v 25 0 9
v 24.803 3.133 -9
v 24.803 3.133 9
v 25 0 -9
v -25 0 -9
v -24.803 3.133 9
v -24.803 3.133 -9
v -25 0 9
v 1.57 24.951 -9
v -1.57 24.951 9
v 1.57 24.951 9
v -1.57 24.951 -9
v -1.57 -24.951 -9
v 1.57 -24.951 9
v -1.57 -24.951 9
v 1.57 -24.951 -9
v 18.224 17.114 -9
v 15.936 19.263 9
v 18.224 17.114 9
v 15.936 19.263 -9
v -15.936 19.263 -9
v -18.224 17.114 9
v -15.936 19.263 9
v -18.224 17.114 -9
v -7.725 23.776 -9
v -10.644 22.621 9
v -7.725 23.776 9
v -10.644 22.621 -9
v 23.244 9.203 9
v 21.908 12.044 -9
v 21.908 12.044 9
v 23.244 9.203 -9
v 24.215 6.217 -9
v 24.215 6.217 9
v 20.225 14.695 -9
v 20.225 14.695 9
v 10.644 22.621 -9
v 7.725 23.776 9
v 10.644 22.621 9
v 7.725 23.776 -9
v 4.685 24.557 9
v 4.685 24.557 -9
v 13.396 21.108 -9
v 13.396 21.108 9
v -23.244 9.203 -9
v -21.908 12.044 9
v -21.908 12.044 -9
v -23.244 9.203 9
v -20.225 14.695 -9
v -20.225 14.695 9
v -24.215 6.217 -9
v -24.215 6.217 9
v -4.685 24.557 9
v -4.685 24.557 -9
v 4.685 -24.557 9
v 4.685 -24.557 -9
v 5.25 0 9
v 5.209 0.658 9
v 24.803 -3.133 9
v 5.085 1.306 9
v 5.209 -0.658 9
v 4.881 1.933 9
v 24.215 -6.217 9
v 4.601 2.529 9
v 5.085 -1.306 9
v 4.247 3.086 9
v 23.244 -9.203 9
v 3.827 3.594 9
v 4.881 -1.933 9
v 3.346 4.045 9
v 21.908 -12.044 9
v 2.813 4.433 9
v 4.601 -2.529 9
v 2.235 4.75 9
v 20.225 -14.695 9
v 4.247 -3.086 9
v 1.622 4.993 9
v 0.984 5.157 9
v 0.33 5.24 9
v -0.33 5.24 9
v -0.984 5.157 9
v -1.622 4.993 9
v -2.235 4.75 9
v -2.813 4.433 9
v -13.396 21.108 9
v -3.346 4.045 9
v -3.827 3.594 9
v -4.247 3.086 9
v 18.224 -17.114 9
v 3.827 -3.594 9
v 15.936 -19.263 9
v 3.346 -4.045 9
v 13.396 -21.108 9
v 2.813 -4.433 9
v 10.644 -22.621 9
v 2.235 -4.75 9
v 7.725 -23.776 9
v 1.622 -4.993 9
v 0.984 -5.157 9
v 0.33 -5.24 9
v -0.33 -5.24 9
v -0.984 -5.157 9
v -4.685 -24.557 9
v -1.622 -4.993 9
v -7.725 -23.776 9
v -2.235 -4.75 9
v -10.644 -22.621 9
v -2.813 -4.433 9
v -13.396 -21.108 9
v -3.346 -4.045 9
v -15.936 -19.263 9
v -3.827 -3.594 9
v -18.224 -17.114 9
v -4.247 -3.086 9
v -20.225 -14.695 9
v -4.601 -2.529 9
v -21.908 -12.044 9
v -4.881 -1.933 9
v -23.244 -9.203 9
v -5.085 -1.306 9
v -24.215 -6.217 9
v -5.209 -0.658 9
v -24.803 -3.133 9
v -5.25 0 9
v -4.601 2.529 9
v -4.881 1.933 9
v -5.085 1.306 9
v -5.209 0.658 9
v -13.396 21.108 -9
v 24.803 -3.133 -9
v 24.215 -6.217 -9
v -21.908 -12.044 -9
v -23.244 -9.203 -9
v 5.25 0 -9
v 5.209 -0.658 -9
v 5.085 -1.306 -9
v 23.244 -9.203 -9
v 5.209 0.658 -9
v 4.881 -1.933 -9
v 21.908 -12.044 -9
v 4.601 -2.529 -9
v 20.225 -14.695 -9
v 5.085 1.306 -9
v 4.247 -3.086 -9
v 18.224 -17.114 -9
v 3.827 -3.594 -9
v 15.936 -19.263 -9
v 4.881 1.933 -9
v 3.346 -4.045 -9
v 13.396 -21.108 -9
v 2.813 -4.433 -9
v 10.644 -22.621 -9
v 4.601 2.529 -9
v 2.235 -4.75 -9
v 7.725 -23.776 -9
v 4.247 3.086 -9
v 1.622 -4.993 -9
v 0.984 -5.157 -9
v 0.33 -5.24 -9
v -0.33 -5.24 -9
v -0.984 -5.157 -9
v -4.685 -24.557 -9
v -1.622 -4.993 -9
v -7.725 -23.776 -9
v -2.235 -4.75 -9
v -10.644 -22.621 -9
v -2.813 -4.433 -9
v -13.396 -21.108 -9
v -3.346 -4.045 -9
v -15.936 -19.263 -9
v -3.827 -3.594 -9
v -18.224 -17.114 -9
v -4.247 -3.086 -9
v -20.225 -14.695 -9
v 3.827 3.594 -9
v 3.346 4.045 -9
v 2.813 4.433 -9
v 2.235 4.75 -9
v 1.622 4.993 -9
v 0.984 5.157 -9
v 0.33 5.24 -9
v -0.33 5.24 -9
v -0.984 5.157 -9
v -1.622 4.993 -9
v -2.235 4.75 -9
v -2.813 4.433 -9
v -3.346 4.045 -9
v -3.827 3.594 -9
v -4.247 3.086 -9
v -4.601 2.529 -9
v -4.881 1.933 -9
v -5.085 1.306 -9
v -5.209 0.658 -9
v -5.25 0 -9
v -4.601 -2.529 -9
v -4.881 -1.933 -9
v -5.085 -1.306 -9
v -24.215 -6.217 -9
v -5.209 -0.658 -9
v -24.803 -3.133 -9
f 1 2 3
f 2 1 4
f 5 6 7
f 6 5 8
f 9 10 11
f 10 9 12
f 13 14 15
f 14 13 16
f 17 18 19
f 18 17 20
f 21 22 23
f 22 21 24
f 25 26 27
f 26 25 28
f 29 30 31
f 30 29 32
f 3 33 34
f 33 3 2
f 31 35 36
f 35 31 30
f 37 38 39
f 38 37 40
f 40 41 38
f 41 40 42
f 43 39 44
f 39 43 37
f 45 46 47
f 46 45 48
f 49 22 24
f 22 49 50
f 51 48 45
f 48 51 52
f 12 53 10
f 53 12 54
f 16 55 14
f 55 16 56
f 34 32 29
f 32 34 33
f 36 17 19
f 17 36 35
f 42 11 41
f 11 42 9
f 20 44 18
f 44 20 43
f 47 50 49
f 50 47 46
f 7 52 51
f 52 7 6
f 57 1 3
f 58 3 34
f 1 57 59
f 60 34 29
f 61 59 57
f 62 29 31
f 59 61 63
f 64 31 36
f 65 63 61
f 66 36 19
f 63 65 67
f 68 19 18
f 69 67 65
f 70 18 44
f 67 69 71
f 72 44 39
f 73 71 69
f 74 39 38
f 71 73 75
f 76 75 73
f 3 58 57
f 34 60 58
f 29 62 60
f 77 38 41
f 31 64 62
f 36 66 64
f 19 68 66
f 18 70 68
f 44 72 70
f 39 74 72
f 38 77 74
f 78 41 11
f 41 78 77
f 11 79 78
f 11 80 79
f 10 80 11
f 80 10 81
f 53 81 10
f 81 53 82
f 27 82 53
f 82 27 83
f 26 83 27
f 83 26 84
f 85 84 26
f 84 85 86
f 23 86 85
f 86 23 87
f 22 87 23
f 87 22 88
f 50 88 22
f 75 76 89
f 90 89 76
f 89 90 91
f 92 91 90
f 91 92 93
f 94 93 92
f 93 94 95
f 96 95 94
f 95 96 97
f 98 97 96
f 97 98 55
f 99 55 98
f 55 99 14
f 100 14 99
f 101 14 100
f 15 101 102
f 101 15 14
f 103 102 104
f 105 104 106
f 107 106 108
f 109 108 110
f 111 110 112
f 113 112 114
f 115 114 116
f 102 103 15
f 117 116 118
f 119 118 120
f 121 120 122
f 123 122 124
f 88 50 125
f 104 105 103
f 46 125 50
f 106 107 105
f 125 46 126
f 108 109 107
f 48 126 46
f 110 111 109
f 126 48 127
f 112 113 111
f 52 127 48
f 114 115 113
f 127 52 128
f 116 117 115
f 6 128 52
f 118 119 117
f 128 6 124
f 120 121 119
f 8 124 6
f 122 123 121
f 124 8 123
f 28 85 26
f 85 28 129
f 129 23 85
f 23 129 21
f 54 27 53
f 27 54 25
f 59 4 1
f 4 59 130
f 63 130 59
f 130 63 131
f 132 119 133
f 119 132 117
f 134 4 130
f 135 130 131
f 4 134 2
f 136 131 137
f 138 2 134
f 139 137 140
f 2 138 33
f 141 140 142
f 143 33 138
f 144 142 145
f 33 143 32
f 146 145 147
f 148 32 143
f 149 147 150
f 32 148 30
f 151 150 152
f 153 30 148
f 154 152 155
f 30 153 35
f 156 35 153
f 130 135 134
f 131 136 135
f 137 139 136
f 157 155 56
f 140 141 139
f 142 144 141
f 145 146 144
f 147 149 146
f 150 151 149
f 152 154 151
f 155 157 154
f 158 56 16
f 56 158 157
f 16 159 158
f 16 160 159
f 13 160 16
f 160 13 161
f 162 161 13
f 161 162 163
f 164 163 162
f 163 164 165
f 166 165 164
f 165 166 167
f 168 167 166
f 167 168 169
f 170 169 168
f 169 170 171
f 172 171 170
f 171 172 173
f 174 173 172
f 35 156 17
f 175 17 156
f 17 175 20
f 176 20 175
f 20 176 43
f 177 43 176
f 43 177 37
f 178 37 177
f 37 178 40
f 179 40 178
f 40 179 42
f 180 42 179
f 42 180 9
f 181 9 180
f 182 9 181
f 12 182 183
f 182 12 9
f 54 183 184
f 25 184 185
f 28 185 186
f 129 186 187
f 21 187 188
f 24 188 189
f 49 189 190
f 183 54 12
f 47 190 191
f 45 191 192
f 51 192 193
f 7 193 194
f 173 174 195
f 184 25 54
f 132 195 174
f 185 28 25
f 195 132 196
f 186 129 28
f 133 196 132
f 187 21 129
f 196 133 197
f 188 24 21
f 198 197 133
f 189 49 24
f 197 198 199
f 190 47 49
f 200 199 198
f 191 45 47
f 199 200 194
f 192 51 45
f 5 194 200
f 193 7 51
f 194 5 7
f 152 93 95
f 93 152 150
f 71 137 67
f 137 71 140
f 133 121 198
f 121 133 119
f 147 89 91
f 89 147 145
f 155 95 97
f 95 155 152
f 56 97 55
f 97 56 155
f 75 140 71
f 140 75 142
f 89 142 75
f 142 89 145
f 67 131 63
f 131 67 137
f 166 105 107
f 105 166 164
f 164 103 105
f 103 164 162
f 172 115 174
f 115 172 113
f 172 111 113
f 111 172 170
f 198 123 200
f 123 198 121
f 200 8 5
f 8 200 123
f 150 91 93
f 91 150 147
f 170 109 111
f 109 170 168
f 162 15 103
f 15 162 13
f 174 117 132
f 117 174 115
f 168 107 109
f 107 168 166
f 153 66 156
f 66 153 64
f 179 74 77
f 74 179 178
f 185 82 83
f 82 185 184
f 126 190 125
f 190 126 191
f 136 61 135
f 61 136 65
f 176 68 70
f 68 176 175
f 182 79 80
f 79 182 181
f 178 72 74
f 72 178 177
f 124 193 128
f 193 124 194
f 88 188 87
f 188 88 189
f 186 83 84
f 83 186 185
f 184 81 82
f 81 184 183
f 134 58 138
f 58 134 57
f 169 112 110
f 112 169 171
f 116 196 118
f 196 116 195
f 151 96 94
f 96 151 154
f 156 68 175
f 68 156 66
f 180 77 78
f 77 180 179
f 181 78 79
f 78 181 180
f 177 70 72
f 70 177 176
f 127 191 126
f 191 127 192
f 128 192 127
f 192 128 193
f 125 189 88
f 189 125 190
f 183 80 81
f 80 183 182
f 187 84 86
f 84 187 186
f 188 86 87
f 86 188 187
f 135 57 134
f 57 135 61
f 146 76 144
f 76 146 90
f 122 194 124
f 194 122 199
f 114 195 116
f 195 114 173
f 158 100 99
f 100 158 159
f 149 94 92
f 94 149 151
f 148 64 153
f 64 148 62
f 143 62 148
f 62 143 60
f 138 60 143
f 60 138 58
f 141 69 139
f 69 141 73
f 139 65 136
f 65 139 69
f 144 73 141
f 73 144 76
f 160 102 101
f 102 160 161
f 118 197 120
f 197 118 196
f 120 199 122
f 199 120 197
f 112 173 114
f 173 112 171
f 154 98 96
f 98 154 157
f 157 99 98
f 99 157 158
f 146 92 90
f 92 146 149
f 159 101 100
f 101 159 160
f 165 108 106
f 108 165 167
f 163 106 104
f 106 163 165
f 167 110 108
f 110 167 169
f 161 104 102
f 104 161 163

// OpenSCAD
$fn = 50;


difference() {
	union() {
		translate(v = [0, 0, -9.0000000000]) {
			cylinder(h = 18, r = 25.0000000000);
		}
	}
	union() {
		translate(v = [0, 0, -100.0000000000]) {
			cylinder(h = 200, r = 5.2500000000);
		}
	}
}
